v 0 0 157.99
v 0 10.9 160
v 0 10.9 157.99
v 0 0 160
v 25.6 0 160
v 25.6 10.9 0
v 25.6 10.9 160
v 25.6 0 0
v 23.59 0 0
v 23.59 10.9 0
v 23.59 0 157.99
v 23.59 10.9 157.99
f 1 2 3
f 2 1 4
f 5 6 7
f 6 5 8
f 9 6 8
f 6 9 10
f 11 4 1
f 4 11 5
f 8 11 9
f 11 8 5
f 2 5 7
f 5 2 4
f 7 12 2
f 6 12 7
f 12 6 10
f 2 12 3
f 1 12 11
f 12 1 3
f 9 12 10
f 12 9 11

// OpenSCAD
// A custom mesh facade for Dell Optiplex 9020
// Angled bracked part, upper
//  By Carsten Thue-Bludworth
//  February, 2022

// CONFIGURATION CONSTANTS
$fn = 1;
$fa = 0.4;
// The overlap amount to help OpenSCAD form unions & differences
_DELTA = 0.01;

// These are the dimensions of the bracket
BASE_WIDTH        = 25.6;
BASE_HEIGHT       = 160;
BASE_THICKNESS_SM = 1.75;
BASE_THICKNESS_LG = 10.9;
WALL_THICKNESS    = 2;

// Creates the base solid for our facade
module base() {
    difference() {
        // I linear extrude the wedge
        points = [[0, 0],
                  [0, BASE_THICKNESS_LG],
                  [BASE_WIDTH, BASE_THICKNESS_LG],
                  [BASE_WIDTH, 0]
                 ];
        linear_extrude(BASE_HEIGHT)
            polygon(points);
        // and now subtract the middle
        translate([-_DELTA, -_DELTA, -_DELTA])
            cube([BASE_WIDTH-WALL_THICKNESS, BASE_THICKNESS_LG+2*_DELTA, BASE_HEIGHT-WALL_THICKNESS]);
    }
}

base();
